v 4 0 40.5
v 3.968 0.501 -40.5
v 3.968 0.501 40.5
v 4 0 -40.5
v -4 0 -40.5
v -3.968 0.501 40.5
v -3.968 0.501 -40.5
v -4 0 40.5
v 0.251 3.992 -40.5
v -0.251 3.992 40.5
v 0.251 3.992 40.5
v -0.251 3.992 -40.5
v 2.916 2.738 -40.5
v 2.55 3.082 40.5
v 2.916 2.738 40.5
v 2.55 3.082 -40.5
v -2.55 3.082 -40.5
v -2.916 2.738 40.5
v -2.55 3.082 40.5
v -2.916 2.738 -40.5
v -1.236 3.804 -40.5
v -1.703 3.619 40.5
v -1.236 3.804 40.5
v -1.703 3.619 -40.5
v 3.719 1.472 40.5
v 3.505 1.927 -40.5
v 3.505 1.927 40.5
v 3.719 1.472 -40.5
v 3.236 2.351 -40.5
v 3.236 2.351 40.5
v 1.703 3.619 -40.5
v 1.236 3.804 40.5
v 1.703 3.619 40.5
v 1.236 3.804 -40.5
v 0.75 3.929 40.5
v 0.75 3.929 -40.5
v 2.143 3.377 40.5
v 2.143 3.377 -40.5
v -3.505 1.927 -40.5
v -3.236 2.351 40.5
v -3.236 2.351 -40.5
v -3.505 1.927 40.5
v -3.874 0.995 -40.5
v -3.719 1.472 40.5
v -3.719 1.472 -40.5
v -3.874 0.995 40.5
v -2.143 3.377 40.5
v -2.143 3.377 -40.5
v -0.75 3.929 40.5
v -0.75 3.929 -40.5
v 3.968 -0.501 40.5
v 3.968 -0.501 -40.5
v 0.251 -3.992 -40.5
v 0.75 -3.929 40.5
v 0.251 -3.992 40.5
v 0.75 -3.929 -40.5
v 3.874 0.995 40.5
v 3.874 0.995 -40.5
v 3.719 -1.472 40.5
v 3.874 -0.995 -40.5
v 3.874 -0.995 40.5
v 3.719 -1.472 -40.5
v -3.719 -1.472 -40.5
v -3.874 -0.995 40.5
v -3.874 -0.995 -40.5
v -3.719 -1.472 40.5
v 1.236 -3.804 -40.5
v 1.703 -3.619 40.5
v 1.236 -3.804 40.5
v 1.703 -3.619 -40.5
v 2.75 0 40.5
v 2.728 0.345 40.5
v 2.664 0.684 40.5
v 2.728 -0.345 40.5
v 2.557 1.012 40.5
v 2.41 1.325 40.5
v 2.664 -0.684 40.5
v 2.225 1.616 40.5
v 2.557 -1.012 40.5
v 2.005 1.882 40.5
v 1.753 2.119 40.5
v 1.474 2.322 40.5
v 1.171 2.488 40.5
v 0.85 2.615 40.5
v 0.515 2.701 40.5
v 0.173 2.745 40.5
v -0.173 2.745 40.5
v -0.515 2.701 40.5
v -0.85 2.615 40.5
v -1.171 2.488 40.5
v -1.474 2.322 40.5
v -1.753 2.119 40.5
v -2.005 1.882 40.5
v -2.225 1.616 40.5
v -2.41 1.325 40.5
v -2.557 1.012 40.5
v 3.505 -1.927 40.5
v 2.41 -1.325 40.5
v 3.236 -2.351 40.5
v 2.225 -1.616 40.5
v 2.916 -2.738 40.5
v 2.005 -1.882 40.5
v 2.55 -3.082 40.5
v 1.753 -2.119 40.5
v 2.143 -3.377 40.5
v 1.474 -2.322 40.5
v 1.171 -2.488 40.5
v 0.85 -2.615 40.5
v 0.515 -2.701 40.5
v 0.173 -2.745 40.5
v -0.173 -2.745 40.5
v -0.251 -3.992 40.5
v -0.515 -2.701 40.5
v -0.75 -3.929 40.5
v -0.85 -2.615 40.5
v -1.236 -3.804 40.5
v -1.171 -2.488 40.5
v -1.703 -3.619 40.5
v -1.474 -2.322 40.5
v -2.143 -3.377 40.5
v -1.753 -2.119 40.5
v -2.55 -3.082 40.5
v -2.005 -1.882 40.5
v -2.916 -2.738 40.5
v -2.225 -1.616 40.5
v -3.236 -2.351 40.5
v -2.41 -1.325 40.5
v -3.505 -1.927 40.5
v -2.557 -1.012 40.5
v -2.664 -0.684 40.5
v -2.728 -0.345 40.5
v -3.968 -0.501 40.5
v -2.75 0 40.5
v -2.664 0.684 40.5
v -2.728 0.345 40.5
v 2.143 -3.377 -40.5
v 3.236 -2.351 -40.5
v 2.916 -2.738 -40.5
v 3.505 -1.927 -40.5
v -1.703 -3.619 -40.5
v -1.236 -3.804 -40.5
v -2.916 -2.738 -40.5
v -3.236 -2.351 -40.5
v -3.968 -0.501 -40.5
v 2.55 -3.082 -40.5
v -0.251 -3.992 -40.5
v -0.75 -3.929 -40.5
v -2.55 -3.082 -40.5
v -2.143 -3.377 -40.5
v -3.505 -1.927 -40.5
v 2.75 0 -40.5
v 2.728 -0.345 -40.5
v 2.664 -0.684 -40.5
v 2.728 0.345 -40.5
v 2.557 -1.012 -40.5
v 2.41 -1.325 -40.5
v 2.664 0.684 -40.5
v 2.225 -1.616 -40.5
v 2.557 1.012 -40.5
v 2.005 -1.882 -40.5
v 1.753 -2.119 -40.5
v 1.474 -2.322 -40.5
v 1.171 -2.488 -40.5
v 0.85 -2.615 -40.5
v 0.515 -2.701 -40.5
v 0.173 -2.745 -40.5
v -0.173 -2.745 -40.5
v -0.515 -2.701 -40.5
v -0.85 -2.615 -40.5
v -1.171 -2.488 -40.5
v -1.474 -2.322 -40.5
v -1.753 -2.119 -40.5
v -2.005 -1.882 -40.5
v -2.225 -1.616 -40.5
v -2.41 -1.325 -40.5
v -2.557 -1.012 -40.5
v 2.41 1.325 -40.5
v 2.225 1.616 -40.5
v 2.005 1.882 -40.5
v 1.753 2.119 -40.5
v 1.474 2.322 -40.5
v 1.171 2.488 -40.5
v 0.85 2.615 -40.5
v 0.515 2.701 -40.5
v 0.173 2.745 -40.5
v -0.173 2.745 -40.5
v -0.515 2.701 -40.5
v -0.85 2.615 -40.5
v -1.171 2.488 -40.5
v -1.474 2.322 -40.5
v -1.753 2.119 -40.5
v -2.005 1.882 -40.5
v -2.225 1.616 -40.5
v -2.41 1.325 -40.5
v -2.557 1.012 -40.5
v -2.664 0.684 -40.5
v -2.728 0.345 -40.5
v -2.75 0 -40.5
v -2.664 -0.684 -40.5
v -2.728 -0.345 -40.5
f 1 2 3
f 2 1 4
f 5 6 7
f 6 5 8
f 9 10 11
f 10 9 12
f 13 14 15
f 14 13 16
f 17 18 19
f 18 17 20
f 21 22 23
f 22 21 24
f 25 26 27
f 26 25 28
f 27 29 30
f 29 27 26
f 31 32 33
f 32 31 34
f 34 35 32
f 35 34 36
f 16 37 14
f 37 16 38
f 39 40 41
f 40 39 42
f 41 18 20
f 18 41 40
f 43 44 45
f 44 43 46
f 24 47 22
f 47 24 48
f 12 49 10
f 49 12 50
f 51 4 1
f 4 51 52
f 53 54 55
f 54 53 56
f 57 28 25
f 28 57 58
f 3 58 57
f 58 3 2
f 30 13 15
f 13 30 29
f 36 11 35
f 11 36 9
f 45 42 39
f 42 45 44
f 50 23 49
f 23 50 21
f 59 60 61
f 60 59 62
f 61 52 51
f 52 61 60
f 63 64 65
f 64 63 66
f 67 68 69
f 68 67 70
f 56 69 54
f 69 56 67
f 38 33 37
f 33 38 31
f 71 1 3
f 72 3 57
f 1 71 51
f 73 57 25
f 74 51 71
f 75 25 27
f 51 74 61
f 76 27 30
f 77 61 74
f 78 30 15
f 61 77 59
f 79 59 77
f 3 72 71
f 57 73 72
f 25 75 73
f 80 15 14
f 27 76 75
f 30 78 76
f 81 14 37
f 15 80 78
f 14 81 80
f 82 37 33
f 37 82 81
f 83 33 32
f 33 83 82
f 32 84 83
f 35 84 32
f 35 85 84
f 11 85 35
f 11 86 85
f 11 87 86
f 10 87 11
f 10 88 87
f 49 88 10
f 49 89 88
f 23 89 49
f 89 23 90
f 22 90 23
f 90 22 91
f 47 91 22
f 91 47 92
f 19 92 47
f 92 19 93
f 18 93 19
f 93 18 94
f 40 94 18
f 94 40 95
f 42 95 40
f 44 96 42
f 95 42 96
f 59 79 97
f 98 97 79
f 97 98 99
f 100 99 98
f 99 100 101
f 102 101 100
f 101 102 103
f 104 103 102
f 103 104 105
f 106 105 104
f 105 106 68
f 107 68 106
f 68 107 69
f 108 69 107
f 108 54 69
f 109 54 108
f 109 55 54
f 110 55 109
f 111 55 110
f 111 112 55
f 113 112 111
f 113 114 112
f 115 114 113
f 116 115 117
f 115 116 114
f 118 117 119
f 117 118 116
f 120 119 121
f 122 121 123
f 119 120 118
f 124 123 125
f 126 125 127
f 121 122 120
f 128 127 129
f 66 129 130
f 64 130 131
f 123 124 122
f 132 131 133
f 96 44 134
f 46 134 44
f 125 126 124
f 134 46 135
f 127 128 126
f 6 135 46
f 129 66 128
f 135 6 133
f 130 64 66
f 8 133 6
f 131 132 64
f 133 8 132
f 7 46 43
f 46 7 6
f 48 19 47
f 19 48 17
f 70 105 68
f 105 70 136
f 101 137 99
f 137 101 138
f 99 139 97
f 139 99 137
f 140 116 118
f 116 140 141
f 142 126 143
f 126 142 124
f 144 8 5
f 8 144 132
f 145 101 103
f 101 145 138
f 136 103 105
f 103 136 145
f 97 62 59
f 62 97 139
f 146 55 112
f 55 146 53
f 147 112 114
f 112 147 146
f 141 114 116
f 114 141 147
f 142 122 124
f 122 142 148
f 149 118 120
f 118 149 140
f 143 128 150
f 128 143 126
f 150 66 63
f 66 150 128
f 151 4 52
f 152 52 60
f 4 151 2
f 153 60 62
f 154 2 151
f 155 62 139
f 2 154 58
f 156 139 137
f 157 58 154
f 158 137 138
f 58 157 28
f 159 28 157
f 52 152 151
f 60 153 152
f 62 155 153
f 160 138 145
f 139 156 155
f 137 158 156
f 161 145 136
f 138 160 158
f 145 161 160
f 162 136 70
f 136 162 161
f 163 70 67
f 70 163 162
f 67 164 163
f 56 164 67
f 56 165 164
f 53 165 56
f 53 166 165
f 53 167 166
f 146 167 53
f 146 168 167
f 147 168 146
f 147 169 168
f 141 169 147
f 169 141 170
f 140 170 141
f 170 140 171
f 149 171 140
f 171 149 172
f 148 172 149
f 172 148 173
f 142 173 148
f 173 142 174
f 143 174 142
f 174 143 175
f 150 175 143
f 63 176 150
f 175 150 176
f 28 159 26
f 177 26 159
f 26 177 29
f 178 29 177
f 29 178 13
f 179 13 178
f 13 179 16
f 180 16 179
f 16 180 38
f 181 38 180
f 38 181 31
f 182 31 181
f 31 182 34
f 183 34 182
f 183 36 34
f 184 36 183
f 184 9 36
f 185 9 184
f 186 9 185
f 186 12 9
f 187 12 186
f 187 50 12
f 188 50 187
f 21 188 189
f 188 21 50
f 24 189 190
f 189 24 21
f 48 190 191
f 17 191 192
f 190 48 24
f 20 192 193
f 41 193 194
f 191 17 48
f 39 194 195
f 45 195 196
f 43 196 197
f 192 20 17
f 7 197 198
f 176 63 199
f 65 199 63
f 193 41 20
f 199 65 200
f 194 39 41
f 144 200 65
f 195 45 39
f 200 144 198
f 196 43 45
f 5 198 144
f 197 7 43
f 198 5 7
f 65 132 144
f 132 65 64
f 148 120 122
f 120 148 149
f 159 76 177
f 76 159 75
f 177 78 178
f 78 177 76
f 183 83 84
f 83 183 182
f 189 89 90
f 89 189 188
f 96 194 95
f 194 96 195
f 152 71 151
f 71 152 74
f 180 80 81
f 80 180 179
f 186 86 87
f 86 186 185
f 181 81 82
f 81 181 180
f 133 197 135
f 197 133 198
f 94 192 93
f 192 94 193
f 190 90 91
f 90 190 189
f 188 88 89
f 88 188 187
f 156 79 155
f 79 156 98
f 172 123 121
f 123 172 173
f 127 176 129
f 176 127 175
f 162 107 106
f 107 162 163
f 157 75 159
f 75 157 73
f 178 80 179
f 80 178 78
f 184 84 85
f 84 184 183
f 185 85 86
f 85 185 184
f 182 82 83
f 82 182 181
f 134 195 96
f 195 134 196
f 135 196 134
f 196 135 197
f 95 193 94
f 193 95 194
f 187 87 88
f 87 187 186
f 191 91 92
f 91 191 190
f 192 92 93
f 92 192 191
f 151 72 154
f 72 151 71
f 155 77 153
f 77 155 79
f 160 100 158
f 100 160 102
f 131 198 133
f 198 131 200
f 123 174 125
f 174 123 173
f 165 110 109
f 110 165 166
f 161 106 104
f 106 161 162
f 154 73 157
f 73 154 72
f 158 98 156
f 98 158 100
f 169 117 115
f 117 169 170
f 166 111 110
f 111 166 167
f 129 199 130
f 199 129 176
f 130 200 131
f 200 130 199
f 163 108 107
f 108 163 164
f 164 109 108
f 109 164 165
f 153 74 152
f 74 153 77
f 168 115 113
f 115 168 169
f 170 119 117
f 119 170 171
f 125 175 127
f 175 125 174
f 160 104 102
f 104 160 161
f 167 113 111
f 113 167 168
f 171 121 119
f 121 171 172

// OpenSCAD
$fn = 50;


difference() {
	union() {
		translate(v = [0, 0, -40.5000000000]) {
			cylinder(h = 81, r = 4.0000000000);
		}
	}
	union() {
		translate(v = [0, 0, -100.0000000000]) {
			cylinder(h = 200, r = 2.7500000000);
		}
	}
}
